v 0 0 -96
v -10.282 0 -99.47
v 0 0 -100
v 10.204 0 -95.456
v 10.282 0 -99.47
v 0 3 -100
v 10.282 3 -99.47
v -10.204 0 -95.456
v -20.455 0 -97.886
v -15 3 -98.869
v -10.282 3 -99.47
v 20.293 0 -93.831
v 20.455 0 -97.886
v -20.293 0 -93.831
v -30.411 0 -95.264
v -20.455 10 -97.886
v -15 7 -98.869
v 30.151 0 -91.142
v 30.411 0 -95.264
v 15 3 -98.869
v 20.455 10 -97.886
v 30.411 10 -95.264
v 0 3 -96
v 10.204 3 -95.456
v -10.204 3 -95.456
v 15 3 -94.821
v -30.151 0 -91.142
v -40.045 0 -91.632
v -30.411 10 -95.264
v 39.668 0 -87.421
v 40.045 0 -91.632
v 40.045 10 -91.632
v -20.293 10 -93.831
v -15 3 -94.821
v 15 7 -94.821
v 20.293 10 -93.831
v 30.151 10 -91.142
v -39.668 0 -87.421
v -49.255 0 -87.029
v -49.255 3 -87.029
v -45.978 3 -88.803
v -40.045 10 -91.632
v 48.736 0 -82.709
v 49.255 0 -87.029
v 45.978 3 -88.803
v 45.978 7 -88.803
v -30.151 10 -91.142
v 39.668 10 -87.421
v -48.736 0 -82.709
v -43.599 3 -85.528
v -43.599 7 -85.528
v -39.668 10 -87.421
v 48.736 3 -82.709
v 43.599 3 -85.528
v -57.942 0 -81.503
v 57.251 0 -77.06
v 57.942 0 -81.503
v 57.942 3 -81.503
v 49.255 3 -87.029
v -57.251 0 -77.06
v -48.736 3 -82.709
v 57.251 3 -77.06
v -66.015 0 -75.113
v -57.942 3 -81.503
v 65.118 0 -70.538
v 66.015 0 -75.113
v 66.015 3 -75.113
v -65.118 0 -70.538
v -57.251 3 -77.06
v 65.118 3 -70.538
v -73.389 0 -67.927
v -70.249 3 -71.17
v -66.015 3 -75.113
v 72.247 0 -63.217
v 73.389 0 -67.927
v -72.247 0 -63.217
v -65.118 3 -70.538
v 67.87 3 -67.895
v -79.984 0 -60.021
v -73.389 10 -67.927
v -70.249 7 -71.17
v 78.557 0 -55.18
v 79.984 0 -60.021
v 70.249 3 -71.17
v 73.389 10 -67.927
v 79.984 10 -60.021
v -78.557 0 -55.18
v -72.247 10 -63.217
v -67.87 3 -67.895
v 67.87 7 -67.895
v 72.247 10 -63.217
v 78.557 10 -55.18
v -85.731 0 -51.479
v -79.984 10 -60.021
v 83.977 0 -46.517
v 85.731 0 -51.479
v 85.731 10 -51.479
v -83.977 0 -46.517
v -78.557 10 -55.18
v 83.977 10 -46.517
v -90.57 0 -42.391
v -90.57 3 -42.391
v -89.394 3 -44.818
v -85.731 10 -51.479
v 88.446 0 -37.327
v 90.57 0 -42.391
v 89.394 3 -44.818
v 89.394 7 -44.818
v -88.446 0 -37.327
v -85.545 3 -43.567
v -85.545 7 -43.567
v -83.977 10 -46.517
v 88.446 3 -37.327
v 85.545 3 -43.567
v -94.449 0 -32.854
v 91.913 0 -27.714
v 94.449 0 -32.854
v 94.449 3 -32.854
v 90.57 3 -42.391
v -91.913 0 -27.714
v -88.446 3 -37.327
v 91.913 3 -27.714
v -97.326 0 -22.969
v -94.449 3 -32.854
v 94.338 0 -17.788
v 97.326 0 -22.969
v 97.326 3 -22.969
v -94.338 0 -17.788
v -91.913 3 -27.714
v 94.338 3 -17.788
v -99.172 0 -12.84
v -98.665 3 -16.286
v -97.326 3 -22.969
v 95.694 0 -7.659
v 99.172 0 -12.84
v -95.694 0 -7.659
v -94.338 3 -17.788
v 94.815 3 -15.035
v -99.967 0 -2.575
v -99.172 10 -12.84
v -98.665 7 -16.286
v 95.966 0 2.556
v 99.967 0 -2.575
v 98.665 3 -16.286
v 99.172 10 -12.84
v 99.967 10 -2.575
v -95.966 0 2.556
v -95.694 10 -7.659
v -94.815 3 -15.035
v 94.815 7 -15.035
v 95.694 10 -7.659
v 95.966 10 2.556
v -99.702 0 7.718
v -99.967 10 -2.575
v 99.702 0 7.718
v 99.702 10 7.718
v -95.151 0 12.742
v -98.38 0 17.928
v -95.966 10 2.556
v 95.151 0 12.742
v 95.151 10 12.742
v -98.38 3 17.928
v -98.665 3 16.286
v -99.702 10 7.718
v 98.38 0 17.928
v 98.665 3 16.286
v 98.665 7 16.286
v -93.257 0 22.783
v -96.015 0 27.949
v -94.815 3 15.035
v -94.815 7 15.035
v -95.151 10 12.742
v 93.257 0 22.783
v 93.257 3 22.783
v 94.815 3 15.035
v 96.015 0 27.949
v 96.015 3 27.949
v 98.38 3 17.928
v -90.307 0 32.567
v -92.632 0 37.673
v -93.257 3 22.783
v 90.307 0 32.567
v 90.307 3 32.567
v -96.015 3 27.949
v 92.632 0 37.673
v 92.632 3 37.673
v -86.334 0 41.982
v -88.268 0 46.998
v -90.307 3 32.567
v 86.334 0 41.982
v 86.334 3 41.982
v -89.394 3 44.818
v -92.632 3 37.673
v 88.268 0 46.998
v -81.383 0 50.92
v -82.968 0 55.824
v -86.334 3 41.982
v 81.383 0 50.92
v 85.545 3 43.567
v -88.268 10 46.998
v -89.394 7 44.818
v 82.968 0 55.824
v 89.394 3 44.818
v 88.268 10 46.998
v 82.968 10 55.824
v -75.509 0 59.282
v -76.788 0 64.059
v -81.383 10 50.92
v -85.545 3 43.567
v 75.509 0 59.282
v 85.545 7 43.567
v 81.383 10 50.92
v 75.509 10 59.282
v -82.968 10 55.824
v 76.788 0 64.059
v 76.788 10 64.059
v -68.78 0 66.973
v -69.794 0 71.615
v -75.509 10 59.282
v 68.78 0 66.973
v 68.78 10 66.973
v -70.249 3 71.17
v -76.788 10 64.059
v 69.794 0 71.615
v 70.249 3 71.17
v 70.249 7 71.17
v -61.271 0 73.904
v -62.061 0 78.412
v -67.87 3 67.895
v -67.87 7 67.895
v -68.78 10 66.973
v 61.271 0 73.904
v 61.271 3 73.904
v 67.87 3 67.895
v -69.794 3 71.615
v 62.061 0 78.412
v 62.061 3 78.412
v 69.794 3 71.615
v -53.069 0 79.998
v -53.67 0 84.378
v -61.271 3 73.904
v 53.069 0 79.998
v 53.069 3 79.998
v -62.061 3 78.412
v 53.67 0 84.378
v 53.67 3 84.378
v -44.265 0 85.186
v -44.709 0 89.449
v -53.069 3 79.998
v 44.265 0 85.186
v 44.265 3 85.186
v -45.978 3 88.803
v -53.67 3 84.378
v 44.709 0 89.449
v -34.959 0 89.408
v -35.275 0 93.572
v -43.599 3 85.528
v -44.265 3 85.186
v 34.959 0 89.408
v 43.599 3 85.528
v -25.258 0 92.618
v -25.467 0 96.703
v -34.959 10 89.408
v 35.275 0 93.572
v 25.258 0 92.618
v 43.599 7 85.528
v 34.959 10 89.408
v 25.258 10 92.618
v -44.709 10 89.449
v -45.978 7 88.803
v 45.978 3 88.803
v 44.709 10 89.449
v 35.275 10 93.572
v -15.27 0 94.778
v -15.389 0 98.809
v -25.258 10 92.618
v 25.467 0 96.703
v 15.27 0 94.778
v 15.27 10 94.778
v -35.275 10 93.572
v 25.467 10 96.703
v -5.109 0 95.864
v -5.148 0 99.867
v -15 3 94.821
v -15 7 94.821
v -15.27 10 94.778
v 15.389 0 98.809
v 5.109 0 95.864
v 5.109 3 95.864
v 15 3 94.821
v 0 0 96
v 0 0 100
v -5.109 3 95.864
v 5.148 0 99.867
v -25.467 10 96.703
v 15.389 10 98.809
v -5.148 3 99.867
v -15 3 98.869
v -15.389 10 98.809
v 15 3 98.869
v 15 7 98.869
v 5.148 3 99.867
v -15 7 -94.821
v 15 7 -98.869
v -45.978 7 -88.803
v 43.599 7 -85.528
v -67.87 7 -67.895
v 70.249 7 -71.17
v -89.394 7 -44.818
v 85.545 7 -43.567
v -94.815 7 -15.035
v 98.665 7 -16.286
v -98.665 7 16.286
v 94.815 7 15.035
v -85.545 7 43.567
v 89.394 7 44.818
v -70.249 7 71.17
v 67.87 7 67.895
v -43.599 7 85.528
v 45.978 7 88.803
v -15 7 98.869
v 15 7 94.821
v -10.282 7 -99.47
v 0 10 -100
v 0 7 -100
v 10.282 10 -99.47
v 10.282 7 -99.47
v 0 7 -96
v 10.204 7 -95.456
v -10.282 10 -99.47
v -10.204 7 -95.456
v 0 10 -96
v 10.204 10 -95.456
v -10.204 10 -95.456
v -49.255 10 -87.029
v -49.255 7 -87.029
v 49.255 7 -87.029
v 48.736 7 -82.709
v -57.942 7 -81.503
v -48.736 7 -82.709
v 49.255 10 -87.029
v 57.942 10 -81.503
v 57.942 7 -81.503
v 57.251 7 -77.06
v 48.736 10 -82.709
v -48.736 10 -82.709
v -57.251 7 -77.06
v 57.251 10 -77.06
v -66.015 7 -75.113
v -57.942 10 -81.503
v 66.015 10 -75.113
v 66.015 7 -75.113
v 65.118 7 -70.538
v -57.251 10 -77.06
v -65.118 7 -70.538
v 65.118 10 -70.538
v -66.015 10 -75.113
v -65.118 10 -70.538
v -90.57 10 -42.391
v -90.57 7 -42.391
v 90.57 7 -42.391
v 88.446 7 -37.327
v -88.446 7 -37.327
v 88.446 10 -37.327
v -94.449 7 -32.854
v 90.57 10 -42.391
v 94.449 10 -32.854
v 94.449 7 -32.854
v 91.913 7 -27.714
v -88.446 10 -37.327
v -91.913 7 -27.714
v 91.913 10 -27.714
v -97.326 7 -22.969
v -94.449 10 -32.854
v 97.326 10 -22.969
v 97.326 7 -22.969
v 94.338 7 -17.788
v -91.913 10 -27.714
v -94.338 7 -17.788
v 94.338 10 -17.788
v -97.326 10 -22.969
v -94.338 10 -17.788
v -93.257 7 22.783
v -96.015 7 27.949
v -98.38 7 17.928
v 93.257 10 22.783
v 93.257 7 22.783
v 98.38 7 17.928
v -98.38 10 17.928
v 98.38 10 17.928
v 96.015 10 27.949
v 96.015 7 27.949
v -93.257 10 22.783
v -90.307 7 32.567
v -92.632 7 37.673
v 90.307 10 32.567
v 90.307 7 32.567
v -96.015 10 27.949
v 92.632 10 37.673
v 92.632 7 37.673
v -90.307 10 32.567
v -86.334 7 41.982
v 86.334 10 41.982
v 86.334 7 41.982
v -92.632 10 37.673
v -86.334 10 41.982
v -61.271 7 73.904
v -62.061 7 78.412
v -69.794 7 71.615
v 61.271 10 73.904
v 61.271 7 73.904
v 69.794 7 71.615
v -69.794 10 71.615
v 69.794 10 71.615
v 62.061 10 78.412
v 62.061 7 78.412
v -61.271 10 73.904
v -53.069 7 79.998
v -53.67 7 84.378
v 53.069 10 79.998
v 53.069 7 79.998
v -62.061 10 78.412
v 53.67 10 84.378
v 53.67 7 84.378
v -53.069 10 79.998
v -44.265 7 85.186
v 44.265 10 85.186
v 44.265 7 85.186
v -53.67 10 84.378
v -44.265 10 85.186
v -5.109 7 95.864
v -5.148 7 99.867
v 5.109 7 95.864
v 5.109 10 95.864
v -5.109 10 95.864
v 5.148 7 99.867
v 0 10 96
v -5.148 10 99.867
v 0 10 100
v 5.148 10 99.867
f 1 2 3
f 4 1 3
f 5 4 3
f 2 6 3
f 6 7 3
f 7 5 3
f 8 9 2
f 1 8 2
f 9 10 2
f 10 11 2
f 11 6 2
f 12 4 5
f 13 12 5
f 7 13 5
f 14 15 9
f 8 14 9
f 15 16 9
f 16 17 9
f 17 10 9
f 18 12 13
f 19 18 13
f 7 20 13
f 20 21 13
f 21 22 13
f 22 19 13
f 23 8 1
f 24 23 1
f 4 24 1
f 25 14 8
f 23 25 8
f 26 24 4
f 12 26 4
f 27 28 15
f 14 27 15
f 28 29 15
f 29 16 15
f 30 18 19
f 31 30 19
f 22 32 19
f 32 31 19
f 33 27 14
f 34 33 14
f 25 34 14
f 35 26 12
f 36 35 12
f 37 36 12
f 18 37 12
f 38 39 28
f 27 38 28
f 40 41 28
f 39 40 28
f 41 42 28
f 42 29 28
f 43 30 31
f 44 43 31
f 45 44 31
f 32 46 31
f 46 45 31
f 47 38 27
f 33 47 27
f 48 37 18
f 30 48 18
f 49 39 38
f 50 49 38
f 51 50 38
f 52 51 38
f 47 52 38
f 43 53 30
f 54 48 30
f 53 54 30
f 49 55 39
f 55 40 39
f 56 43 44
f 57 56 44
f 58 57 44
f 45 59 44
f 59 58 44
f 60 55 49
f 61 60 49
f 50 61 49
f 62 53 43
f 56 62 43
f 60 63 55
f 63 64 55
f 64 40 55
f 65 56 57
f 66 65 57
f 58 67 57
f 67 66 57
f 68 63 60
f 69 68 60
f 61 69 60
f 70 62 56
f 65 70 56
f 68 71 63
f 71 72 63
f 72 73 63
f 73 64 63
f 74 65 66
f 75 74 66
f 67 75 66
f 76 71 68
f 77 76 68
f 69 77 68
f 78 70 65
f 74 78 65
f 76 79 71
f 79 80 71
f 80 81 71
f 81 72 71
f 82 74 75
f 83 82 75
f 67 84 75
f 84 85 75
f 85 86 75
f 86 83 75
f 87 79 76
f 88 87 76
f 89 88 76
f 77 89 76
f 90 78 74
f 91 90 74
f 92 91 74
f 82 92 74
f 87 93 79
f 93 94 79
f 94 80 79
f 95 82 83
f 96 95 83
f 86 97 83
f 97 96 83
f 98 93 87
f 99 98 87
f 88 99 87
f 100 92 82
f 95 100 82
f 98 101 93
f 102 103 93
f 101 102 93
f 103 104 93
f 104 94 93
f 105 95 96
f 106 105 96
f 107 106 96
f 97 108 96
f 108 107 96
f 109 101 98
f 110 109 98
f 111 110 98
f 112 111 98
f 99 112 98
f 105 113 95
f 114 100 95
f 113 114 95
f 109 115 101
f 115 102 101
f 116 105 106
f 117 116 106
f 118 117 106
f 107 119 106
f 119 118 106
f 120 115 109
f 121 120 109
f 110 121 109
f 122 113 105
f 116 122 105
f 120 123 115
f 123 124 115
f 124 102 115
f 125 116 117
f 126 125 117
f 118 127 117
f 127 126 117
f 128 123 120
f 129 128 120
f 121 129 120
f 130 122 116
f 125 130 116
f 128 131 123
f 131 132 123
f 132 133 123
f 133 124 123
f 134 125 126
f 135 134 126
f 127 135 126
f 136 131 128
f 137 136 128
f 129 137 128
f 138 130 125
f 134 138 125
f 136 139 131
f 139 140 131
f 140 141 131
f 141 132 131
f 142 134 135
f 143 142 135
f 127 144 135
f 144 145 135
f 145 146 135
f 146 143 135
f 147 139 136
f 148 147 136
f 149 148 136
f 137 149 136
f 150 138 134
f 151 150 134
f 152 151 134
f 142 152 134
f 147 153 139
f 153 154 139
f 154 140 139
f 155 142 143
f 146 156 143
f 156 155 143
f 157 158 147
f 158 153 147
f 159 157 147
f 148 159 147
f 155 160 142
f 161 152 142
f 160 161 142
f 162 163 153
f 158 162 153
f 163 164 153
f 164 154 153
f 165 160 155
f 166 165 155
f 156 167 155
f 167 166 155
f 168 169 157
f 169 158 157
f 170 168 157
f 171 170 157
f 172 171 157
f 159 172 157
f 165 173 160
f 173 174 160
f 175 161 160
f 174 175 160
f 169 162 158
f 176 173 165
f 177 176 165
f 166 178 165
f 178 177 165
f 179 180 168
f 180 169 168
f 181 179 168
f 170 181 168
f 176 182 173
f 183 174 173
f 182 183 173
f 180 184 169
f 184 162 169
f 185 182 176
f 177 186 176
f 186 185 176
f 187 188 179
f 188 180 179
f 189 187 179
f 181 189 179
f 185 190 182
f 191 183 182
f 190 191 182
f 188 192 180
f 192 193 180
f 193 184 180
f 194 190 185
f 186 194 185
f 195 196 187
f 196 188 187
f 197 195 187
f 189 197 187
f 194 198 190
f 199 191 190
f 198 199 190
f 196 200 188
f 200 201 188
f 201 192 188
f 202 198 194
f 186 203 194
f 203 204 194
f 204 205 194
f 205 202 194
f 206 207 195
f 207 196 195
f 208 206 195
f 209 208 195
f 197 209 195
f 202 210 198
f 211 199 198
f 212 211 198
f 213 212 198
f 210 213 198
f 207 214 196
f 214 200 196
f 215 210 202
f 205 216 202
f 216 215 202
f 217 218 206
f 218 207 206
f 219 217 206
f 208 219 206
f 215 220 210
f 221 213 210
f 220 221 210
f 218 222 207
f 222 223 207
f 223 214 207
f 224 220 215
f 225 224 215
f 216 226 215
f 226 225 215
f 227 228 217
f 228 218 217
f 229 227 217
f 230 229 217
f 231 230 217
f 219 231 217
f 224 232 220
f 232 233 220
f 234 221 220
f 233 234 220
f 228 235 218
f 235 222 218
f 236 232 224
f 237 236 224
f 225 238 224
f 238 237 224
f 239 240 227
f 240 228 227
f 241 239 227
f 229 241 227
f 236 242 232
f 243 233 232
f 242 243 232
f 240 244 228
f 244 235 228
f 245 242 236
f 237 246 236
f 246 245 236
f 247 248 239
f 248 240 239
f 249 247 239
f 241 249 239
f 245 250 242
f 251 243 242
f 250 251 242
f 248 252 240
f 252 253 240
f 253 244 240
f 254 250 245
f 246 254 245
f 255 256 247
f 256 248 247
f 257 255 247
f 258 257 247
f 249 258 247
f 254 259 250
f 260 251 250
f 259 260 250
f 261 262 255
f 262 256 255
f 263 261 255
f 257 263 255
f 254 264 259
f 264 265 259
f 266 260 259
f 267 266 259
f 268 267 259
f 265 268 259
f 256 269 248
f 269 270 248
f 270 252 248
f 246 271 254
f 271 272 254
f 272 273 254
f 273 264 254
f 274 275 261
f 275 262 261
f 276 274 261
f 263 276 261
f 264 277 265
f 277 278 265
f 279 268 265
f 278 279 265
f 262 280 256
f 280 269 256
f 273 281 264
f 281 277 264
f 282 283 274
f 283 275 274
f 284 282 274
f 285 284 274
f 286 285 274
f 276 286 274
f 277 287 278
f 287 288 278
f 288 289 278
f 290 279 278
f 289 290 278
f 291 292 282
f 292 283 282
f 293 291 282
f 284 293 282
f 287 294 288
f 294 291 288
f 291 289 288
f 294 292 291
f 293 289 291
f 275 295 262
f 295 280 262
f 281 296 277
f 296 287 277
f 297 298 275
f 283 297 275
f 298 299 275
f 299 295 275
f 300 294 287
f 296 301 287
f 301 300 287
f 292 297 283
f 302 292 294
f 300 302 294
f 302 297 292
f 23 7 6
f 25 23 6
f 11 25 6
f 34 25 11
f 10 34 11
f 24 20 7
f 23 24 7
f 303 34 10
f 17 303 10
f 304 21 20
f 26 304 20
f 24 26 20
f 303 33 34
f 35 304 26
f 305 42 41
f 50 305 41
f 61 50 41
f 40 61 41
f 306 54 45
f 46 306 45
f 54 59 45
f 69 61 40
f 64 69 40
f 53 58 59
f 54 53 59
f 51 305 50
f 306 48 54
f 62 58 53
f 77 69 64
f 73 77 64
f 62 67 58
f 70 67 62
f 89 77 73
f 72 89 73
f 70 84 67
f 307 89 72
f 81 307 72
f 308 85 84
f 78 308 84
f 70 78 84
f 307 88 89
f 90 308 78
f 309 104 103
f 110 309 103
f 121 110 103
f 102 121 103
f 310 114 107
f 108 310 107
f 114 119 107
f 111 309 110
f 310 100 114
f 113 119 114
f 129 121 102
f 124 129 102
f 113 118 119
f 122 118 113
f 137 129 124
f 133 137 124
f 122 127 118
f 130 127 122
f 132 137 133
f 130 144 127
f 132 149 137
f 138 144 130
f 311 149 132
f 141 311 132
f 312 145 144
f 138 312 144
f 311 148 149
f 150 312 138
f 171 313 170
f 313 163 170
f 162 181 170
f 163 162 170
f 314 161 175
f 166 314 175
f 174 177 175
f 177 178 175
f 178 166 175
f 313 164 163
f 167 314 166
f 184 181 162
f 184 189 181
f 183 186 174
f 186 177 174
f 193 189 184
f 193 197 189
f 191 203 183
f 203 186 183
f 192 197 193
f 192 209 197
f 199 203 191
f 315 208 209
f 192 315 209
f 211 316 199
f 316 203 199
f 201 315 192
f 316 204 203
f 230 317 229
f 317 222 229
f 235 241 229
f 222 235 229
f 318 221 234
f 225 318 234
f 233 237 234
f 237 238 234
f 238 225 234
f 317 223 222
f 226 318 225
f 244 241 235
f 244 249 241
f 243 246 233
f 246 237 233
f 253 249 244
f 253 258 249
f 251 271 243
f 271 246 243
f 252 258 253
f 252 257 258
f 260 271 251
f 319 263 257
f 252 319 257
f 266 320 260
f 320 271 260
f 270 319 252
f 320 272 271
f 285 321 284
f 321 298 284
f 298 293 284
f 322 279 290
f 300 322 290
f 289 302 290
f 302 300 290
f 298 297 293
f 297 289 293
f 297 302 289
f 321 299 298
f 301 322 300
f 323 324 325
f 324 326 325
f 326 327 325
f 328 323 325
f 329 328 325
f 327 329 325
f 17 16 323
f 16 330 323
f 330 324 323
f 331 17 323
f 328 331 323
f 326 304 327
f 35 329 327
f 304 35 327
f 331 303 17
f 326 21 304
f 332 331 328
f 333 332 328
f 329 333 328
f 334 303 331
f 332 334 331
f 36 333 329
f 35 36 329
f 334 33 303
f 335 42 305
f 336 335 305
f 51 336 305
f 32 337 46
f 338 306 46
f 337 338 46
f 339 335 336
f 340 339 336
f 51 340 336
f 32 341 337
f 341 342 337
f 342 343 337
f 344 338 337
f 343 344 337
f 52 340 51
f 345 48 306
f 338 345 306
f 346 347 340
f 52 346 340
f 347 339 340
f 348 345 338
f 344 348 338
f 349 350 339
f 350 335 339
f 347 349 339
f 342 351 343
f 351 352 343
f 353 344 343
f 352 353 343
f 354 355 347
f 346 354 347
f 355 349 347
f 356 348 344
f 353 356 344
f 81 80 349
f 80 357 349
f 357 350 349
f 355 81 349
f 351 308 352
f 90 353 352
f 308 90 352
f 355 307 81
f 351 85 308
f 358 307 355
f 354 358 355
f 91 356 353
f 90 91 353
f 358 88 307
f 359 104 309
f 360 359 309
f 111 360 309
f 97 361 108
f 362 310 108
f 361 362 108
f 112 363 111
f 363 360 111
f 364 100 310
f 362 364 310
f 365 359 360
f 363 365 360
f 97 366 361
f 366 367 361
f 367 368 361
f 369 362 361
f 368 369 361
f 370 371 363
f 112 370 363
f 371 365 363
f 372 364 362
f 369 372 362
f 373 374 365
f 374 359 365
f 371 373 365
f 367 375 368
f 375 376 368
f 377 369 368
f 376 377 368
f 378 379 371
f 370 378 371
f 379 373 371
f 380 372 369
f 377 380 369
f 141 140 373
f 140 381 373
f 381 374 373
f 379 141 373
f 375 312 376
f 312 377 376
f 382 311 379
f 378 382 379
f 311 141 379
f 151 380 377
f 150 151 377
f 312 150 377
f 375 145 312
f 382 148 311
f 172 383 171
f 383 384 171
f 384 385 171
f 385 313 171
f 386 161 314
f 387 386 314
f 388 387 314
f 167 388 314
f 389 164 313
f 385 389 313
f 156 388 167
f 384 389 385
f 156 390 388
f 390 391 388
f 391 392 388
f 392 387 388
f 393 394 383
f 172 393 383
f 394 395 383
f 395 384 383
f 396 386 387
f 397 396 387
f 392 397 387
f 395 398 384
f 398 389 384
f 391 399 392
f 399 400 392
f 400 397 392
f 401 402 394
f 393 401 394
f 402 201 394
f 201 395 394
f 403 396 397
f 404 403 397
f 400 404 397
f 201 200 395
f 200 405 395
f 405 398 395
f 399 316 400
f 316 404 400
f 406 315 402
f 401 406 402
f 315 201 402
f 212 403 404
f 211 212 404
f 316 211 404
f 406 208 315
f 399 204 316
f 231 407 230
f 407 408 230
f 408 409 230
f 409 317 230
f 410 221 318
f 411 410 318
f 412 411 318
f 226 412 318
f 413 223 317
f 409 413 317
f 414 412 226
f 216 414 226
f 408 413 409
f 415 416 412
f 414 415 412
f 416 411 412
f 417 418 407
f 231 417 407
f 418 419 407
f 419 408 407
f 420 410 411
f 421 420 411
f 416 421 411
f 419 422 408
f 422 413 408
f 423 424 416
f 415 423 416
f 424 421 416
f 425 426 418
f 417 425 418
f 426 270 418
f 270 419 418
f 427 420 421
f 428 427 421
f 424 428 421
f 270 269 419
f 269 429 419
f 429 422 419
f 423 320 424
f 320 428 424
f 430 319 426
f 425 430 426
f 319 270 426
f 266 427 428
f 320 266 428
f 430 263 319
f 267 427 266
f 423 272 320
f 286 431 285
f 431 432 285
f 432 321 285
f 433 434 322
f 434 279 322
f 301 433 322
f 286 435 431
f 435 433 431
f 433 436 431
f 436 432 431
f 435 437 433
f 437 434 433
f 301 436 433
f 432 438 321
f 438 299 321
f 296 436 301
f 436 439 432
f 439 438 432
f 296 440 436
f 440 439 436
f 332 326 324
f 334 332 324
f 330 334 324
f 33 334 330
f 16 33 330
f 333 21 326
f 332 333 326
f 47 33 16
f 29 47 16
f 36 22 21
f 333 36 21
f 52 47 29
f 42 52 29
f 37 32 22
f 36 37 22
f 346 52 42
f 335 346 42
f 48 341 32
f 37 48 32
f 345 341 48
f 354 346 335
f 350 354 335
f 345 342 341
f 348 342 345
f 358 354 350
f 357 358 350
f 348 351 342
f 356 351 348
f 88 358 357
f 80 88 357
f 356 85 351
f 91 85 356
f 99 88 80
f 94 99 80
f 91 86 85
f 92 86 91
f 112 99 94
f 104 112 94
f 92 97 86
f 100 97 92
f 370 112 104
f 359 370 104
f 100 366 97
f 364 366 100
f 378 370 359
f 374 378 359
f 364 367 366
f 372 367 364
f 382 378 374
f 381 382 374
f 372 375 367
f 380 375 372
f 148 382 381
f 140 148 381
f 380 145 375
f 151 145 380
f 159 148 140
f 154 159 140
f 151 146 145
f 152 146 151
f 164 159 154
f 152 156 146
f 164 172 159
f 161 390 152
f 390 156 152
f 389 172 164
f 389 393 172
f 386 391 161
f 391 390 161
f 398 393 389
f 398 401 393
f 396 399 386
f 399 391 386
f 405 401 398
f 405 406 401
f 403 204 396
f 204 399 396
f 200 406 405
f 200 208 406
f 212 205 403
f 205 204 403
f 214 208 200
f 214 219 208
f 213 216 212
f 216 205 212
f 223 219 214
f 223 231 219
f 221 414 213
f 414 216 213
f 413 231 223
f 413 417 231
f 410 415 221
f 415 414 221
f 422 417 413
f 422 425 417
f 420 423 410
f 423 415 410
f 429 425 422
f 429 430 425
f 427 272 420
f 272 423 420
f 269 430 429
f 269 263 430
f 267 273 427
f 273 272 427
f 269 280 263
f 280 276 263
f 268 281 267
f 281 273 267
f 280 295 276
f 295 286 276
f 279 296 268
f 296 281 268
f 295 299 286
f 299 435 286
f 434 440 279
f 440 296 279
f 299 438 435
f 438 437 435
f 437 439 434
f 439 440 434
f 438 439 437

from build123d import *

# Parameters (mm, degrees)
SKETCH1_R           = 100
SKETCH1_R_2         = 96
BOSS_EXTRUDE1_DEPTH = 10
SKETCH2_W           = 30
SKETCH2_H           = 4
CUT_EXTRUDE1_DEPTH  = 142.774468788
CIRPATTERN1_COUNT   = 10


with BuildPart() as part:
    # Sketch1 → Boss-Extrude1 (new body)
    with BuildSketch(Plane(origin=(0, 0, 0), x_dir=(1, 0, 0), z_dir=(0, 1, 0))):
        Circle(SKETCH1_R)
        Circle(SKETCH1_R_2, mode=Mode.SUBTRACT)
    extrude(amount=BOSS_EXTRUDE1_DEPTH)

    # Sketch2 → Cut-Extrude1 (cut, through all)
    with BuildSketch(Plane.XY):
        with Locations((0, 5)):
            Rectangle(SKETCH2_W, SKETCH2_H)
    cut_extrude1 = extrude(amount=-CUT_EXTRUDE1_DEPTH, mode=Mode.SUBTRACT)

    # CirPattern1: Cut-Extrude1 ×10 about axis
    cirpattern1_axis = Axis((0, 10, 0), (0, -1, 0))
    for i in range(1, CIRPATTERN1_COUNT):
        add(cut_extrude1.rotate(cirpattern1_axis, i * 360 / CIRPATTERN1_COUNT), mode=Mode.SUBTRACT)


solid = part.part
